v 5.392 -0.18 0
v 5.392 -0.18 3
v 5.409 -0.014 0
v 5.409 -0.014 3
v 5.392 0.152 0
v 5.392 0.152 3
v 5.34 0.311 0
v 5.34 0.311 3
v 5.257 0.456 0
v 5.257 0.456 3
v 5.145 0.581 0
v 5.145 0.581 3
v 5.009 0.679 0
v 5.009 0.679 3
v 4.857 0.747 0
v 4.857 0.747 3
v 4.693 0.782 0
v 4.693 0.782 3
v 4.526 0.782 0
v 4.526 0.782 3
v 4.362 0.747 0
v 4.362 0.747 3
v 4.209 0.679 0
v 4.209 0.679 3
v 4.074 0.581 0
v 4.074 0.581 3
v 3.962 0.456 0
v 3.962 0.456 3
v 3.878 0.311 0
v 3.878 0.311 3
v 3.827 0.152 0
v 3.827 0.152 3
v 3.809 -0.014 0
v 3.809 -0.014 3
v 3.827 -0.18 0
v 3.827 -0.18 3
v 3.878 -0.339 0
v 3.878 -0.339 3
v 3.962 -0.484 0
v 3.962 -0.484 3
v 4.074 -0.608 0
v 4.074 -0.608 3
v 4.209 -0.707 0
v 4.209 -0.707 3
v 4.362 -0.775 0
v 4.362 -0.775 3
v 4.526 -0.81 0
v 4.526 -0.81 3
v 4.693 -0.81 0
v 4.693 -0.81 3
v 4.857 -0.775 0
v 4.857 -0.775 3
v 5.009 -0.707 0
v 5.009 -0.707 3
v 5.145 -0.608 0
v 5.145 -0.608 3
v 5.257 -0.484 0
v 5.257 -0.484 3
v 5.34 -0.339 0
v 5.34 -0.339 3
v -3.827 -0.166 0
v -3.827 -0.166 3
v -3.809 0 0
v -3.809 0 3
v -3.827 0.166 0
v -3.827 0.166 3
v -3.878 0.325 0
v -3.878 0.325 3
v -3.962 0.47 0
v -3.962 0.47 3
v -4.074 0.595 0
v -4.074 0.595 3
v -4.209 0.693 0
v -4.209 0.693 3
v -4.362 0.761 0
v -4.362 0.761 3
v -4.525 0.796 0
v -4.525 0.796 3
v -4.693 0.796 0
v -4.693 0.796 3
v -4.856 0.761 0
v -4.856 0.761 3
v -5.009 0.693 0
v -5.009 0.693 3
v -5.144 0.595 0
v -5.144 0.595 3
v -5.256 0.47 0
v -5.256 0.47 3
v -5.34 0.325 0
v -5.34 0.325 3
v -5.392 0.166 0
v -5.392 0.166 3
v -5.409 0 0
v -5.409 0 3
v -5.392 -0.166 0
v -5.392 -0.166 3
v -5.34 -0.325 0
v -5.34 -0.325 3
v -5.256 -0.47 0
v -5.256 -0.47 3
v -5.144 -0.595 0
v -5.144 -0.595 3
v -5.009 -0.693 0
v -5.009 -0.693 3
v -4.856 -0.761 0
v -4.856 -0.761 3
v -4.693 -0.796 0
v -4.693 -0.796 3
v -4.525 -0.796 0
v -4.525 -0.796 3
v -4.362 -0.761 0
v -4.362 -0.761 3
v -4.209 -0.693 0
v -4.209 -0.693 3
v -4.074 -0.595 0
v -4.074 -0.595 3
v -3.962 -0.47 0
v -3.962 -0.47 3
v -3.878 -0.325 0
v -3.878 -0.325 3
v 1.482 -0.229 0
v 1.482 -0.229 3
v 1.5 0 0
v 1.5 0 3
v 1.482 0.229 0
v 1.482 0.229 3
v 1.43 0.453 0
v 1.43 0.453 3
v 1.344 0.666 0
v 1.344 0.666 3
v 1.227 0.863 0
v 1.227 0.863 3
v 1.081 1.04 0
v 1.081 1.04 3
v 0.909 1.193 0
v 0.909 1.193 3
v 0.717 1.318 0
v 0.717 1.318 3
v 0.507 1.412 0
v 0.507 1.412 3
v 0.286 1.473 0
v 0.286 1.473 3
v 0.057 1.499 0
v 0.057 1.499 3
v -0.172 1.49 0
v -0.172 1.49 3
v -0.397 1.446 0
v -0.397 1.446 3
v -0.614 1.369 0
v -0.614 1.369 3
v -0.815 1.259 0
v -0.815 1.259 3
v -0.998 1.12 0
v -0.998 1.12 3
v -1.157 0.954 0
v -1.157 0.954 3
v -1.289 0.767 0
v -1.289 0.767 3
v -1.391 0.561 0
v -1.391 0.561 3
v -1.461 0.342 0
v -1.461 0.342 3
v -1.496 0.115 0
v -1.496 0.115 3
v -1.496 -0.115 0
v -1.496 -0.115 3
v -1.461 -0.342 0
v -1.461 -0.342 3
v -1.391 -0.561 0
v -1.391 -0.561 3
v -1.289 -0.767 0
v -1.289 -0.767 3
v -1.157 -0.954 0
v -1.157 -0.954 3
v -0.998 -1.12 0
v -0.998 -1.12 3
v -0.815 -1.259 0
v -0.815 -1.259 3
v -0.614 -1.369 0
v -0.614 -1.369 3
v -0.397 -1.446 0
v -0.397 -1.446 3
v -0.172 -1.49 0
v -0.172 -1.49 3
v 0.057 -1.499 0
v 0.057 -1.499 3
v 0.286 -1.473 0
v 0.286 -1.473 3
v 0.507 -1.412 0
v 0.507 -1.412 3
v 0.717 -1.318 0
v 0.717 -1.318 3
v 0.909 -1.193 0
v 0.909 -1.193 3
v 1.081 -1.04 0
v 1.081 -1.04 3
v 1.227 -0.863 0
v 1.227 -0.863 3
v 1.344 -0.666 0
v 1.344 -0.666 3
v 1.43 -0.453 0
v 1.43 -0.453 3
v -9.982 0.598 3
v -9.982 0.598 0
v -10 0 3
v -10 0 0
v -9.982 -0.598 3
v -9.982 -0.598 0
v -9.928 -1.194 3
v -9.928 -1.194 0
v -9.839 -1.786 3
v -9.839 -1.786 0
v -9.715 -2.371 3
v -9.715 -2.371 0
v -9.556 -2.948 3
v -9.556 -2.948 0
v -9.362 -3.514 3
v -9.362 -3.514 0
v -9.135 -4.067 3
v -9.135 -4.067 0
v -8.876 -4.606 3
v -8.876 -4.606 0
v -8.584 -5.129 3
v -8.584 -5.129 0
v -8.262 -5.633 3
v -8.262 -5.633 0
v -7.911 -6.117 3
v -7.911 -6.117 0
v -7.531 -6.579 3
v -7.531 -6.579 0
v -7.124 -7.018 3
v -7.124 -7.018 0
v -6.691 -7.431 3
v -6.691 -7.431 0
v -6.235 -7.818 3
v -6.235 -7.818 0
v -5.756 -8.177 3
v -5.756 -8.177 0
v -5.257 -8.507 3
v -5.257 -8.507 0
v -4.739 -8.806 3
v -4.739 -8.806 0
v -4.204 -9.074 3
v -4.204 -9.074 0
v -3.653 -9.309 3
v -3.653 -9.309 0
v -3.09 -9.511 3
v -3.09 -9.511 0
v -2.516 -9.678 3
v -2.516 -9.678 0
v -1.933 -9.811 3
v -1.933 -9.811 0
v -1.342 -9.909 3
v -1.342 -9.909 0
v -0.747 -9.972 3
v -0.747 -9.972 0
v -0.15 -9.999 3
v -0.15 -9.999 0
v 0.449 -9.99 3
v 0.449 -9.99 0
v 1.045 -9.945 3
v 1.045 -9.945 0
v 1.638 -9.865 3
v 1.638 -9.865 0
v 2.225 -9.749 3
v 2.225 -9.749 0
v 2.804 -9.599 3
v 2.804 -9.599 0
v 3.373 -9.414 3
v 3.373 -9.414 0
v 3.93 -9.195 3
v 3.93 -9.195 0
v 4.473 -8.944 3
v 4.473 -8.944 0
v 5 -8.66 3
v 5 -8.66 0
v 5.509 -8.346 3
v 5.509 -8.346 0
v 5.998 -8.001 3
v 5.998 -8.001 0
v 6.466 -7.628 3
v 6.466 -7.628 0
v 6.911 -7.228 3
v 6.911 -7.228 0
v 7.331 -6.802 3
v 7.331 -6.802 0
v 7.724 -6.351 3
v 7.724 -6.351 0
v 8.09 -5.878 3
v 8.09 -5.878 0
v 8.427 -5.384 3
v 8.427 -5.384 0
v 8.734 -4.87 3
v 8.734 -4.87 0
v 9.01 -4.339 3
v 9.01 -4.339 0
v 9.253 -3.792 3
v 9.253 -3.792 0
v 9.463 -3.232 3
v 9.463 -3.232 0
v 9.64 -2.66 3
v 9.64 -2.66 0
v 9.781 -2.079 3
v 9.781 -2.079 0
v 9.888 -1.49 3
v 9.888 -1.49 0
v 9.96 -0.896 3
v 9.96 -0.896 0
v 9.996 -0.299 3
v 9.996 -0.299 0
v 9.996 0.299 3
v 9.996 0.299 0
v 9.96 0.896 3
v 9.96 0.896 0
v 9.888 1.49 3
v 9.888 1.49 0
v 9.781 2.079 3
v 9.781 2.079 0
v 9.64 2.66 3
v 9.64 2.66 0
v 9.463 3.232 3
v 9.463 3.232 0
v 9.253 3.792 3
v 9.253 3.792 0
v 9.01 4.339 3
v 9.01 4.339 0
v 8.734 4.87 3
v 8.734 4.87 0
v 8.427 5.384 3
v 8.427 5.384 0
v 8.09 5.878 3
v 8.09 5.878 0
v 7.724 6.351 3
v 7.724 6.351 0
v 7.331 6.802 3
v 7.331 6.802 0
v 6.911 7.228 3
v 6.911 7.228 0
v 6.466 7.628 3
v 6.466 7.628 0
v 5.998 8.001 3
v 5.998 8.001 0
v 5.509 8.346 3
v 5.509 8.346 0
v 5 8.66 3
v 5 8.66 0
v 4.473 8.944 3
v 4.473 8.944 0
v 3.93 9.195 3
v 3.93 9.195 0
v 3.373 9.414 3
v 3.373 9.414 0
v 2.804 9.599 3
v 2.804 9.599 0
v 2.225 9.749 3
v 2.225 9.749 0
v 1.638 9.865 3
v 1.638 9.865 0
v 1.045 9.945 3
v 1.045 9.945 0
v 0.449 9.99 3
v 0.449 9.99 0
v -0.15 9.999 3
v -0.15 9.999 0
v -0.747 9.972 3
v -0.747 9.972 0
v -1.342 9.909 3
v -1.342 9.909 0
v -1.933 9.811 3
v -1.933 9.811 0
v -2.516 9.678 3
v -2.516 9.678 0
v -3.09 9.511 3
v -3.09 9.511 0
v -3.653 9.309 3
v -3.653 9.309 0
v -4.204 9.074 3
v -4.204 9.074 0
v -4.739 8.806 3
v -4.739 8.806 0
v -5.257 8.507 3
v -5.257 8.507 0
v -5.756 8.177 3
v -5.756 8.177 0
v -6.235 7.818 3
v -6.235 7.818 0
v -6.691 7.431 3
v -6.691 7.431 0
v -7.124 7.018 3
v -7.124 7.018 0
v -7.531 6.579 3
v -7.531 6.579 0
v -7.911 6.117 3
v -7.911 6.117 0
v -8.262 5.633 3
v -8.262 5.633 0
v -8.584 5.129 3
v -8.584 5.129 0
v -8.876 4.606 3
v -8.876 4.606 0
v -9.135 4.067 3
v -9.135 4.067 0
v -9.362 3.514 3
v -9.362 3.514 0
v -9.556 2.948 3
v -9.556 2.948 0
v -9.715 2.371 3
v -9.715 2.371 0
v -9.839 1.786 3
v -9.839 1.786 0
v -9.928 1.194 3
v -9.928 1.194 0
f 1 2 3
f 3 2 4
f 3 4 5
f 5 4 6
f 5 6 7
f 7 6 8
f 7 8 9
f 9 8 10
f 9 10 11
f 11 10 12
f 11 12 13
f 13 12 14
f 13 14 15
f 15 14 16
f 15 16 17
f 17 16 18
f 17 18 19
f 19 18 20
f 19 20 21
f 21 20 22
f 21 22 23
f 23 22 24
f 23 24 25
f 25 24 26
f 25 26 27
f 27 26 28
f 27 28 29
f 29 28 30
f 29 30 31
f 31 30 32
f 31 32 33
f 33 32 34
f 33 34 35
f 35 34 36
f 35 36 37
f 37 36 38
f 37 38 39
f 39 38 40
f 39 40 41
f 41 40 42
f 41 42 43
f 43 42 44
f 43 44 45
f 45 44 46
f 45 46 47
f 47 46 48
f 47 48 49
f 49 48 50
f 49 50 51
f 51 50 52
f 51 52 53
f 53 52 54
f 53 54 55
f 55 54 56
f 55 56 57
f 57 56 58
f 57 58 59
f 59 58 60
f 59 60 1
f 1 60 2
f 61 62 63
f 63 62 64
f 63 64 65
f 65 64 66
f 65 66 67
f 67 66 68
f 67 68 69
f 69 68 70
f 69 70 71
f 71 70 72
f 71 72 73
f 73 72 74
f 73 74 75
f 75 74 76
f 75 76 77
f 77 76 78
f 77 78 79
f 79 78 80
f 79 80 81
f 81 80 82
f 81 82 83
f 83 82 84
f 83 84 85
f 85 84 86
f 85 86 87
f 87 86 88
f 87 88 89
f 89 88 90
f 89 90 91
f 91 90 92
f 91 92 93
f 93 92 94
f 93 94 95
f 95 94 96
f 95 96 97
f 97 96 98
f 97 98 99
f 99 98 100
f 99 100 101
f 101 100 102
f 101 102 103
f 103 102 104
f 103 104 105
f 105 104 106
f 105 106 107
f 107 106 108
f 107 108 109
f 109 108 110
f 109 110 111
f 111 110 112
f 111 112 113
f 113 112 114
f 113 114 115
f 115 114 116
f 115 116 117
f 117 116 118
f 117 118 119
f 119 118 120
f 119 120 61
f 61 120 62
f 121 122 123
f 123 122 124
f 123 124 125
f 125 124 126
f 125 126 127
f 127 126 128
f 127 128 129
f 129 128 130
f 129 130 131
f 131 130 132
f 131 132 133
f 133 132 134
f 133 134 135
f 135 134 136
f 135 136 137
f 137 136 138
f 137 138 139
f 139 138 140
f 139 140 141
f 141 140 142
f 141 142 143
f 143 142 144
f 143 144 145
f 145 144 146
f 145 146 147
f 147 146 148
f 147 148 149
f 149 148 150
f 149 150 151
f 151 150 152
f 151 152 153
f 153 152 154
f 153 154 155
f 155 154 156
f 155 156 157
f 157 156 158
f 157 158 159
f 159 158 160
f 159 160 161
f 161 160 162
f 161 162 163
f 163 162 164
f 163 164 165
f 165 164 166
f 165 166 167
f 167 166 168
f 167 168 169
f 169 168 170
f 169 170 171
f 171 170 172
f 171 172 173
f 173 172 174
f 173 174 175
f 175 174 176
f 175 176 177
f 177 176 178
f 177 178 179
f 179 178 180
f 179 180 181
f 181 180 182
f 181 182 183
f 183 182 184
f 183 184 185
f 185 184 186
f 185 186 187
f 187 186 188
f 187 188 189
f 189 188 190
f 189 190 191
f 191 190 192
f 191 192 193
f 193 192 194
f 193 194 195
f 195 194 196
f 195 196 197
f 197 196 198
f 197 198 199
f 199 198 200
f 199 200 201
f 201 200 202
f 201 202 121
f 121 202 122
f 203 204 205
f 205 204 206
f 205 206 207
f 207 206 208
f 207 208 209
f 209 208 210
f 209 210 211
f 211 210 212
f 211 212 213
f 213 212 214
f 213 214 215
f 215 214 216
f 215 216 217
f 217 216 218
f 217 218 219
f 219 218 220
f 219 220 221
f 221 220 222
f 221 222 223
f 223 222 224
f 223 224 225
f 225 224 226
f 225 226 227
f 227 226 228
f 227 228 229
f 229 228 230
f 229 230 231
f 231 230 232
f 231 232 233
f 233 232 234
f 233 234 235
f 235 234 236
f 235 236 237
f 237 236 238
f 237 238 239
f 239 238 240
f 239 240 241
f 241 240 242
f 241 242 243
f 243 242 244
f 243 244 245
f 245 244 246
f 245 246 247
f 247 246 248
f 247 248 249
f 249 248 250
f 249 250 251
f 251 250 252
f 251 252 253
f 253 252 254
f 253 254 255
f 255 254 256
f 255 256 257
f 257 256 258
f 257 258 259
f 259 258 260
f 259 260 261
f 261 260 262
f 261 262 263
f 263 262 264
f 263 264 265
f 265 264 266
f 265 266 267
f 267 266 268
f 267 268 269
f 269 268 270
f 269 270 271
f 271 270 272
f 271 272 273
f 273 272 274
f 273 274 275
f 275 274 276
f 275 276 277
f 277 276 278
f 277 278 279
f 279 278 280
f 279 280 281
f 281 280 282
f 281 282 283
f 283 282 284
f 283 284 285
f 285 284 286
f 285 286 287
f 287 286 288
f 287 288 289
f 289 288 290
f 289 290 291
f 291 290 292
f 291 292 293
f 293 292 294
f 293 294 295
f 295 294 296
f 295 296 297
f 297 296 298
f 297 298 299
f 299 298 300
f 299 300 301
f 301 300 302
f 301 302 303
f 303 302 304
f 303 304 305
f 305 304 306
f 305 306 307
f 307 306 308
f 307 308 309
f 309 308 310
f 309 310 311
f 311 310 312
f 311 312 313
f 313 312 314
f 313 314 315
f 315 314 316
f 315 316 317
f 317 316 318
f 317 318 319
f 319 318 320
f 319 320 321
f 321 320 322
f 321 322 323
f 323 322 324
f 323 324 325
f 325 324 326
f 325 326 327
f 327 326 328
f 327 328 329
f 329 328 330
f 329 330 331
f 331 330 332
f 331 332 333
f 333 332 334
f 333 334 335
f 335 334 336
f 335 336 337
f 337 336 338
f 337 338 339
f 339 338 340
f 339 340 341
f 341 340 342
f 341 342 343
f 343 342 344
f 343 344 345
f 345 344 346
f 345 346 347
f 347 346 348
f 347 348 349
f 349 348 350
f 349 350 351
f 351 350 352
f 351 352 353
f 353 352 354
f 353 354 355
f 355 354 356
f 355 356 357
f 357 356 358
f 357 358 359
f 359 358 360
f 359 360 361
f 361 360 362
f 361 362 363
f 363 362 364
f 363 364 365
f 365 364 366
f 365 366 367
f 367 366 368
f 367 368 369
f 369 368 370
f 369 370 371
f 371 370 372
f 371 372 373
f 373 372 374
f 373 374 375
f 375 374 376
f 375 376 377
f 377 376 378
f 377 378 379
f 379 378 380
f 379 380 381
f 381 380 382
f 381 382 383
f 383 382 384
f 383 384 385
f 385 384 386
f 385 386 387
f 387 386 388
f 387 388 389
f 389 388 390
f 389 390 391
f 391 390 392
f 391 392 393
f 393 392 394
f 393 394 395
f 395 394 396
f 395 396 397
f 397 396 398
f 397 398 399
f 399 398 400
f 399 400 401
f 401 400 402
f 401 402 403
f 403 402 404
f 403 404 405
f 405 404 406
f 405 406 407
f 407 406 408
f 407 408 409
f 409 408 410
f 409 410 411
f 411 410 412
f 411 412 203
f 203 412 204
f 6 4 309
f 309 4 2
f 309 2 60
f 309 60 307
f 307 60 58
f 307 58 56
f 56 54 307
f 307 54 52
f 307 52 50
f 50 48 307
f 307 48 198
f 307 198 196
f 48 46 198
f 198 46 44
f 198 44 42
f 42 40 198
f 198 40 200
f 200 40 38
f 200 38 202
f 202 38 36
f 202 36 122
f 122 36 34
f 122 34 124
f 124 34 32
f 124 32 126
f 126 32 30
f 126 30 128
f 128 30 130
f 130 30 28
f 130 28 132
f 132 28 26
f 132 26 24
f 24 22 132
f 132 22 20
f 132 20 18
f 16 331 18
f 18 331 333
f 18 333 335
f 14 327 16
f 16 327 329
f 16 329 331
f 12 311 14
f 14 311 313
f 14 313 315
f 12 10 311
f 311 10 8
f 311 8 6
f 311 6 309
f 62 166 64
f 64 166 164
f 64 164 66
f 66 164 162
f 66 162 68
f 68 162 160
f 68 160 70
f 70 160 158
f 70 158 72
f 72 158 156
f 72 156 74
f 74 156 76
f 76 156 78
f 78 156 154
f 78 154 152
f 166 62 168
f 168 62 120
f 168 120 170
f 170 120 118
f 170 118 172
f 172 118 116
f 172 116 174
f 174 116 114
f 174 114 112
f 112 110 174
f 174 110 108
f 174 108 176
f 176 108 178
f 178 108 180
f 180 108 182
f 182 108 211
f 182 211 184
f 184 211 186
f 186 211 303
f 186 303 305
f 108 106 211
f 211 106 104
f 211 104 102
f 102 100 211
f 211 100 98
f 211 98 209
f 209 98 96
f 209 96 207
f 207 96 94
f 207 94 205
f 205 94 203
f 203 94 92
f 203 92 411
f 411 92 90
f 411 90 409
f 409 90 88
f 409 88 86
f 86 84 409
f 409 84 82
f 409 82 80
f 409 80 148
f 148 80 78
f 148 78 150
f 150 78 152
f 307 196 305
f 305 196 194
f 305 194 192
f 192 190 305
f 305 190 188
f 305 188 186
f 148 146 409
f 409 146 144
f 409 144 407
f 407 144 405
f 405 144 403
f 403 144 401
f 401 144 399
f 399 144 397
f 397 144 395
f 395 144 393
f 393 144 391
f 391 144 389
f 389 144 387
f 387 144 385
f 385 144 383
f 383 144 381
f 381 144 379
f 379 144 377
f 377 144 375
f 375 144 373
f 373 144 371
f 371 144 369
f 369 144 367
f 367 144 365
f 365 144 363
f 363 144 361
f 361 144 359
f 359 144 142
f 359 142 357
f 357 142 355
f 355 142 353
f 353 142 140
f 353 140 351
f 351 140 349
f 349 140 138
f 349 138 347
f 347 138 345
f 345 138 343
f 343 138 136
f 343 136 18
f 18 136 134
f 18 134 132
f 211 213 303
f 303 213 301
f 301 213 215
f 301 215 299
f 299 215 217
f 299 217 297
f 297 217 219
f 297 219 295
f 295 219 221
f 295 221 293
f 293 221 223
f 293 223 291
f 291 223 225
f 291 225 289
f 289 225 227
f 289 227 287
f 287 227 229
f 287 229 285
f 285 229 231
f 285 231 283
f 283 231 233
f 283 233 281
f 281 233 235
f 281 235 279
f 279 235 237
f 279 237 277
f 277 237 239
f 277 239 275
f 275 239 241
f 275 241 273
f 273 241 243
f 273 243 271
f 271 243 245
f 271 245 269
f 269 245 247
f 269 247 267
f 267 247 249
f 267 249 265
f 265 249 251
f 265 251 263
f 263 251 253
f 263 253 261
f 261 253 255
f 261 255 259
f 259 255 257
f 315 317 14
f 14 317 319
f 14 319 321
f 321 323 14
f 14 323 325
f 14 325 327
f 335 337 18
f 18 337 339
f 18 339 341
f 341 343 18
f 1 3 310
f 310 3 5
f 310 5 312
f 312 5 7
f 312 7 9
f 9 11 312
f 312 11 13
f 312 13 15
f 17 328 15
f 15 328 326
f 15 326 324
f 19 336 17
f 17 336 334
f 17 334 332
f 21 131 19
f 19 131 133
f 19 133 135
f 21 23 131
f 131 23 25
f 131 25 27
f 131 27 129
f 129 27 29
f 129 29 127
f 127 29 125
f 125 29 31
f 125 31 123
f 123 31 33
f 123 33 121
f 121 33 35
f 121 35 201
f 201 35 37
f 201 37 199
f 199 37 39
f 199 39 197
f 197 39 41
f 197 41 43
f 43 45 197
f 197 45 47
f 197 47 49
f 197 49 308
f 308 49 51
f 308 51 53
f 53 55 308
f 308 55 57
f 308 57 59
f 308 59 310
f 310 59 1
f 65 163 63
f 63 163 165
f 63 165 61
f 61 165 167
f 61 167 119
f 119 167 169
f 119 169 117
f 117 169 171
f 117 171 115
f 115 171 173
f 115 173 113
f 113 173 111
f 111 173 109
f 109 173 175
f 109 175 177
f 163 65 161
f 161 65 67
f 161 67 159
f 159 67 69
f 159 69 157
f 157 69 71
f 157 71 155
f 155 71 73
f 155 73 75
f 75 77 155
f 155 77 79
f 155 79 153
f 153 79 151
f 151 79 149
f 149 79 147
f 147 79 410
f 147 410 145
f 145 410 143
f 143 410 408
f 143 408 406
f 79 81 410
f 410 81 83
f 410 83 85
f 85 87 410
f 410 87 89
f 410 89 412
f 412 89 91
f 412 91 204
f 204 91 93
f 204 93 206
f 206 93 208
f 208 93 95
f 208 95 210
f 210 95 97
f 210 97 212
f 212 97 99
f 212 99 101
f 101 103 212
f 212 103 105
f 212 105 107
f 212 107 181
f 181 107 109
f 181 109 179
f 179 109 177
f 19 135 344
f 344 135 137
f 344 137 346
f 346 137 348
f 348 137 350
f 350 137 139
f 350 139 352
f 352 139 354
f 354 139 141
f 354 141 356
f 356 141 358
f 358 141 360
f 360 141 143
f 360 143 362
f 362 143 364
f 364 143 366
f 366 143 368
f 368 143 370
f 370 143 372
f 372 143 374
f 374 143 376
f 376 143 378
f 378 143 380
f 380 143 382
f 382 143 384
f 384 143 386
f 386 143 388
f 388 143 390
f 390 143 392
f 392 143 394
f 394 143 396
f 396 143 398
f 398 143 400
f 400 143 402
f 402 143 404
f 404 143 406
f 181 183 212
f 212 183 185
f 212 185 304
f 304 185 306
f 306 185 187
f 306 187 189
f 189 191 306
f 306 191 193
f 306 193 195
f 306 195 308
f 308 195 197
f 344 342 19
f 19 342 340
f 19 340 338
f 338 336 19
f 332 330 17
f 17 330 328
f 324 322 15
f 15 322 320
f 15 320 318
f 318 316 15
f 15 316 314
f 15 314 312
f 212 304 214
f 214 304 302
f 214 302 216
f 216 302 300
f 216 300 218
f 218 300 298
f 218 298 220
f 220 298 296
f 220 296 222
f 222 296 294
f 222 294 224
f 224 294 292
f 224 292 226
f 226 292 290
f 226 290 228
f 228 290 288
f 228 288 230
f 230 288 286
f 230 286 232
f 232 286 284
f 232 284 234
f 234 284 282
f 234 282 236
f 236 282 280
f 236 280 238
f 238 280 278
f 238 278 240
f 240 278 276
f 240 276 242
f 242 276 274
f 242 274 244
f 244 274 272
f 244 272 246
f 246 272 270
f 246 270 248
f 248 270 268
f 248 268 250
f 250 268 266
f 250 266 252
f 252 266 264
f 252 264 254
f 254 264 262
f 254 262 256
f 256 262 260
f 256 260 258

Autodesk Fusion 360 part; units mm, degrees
sketch "Sketch1" plane through (0, 0, 0) normal (0, 0, 1) x (1, 0, 0)
  circle A0 centre (0, 0) radius 10
  dimension "d1" = 20
extrude "Extrude1" add sketch "Sketch1" along normal blind 3
sketch "Sketch2" plane through (0, 0, 3) normal (0, 0, 1) x (-1, 0, 0)
  circle A0 centre (0, 0) radius 10
  circle A1 centre (0, 0) radius 1.5
  dimension "d4" = 3
extrude "Extrude2" cut sketch "Sketch2" against normal blind 12 contours A1
sketch "Sketch3" plane through (0, 0, 3) normal (0, 0, 1) x (-1, 0, 0)
  circle A0 centre (0, 0) radius 1.5
  circle A1 centre (0, 0) radius 10
  circle A2 centre (-4.6093, 0.0139) radius 0.8
  dimension "d7" = 1.6
sketch "Sketch4" plane through (0, 0, 3) normal (0, 0, 1) x (-1, 0, 0)
  circle A0 centre (4.6091, 0) radius 0.8
  dimension "d8" = 1.6
extrude "Extrude3" cut sketch "Sketch3" sketch "Sketch4" against normal blind 3 contours A2 of sketch 2
